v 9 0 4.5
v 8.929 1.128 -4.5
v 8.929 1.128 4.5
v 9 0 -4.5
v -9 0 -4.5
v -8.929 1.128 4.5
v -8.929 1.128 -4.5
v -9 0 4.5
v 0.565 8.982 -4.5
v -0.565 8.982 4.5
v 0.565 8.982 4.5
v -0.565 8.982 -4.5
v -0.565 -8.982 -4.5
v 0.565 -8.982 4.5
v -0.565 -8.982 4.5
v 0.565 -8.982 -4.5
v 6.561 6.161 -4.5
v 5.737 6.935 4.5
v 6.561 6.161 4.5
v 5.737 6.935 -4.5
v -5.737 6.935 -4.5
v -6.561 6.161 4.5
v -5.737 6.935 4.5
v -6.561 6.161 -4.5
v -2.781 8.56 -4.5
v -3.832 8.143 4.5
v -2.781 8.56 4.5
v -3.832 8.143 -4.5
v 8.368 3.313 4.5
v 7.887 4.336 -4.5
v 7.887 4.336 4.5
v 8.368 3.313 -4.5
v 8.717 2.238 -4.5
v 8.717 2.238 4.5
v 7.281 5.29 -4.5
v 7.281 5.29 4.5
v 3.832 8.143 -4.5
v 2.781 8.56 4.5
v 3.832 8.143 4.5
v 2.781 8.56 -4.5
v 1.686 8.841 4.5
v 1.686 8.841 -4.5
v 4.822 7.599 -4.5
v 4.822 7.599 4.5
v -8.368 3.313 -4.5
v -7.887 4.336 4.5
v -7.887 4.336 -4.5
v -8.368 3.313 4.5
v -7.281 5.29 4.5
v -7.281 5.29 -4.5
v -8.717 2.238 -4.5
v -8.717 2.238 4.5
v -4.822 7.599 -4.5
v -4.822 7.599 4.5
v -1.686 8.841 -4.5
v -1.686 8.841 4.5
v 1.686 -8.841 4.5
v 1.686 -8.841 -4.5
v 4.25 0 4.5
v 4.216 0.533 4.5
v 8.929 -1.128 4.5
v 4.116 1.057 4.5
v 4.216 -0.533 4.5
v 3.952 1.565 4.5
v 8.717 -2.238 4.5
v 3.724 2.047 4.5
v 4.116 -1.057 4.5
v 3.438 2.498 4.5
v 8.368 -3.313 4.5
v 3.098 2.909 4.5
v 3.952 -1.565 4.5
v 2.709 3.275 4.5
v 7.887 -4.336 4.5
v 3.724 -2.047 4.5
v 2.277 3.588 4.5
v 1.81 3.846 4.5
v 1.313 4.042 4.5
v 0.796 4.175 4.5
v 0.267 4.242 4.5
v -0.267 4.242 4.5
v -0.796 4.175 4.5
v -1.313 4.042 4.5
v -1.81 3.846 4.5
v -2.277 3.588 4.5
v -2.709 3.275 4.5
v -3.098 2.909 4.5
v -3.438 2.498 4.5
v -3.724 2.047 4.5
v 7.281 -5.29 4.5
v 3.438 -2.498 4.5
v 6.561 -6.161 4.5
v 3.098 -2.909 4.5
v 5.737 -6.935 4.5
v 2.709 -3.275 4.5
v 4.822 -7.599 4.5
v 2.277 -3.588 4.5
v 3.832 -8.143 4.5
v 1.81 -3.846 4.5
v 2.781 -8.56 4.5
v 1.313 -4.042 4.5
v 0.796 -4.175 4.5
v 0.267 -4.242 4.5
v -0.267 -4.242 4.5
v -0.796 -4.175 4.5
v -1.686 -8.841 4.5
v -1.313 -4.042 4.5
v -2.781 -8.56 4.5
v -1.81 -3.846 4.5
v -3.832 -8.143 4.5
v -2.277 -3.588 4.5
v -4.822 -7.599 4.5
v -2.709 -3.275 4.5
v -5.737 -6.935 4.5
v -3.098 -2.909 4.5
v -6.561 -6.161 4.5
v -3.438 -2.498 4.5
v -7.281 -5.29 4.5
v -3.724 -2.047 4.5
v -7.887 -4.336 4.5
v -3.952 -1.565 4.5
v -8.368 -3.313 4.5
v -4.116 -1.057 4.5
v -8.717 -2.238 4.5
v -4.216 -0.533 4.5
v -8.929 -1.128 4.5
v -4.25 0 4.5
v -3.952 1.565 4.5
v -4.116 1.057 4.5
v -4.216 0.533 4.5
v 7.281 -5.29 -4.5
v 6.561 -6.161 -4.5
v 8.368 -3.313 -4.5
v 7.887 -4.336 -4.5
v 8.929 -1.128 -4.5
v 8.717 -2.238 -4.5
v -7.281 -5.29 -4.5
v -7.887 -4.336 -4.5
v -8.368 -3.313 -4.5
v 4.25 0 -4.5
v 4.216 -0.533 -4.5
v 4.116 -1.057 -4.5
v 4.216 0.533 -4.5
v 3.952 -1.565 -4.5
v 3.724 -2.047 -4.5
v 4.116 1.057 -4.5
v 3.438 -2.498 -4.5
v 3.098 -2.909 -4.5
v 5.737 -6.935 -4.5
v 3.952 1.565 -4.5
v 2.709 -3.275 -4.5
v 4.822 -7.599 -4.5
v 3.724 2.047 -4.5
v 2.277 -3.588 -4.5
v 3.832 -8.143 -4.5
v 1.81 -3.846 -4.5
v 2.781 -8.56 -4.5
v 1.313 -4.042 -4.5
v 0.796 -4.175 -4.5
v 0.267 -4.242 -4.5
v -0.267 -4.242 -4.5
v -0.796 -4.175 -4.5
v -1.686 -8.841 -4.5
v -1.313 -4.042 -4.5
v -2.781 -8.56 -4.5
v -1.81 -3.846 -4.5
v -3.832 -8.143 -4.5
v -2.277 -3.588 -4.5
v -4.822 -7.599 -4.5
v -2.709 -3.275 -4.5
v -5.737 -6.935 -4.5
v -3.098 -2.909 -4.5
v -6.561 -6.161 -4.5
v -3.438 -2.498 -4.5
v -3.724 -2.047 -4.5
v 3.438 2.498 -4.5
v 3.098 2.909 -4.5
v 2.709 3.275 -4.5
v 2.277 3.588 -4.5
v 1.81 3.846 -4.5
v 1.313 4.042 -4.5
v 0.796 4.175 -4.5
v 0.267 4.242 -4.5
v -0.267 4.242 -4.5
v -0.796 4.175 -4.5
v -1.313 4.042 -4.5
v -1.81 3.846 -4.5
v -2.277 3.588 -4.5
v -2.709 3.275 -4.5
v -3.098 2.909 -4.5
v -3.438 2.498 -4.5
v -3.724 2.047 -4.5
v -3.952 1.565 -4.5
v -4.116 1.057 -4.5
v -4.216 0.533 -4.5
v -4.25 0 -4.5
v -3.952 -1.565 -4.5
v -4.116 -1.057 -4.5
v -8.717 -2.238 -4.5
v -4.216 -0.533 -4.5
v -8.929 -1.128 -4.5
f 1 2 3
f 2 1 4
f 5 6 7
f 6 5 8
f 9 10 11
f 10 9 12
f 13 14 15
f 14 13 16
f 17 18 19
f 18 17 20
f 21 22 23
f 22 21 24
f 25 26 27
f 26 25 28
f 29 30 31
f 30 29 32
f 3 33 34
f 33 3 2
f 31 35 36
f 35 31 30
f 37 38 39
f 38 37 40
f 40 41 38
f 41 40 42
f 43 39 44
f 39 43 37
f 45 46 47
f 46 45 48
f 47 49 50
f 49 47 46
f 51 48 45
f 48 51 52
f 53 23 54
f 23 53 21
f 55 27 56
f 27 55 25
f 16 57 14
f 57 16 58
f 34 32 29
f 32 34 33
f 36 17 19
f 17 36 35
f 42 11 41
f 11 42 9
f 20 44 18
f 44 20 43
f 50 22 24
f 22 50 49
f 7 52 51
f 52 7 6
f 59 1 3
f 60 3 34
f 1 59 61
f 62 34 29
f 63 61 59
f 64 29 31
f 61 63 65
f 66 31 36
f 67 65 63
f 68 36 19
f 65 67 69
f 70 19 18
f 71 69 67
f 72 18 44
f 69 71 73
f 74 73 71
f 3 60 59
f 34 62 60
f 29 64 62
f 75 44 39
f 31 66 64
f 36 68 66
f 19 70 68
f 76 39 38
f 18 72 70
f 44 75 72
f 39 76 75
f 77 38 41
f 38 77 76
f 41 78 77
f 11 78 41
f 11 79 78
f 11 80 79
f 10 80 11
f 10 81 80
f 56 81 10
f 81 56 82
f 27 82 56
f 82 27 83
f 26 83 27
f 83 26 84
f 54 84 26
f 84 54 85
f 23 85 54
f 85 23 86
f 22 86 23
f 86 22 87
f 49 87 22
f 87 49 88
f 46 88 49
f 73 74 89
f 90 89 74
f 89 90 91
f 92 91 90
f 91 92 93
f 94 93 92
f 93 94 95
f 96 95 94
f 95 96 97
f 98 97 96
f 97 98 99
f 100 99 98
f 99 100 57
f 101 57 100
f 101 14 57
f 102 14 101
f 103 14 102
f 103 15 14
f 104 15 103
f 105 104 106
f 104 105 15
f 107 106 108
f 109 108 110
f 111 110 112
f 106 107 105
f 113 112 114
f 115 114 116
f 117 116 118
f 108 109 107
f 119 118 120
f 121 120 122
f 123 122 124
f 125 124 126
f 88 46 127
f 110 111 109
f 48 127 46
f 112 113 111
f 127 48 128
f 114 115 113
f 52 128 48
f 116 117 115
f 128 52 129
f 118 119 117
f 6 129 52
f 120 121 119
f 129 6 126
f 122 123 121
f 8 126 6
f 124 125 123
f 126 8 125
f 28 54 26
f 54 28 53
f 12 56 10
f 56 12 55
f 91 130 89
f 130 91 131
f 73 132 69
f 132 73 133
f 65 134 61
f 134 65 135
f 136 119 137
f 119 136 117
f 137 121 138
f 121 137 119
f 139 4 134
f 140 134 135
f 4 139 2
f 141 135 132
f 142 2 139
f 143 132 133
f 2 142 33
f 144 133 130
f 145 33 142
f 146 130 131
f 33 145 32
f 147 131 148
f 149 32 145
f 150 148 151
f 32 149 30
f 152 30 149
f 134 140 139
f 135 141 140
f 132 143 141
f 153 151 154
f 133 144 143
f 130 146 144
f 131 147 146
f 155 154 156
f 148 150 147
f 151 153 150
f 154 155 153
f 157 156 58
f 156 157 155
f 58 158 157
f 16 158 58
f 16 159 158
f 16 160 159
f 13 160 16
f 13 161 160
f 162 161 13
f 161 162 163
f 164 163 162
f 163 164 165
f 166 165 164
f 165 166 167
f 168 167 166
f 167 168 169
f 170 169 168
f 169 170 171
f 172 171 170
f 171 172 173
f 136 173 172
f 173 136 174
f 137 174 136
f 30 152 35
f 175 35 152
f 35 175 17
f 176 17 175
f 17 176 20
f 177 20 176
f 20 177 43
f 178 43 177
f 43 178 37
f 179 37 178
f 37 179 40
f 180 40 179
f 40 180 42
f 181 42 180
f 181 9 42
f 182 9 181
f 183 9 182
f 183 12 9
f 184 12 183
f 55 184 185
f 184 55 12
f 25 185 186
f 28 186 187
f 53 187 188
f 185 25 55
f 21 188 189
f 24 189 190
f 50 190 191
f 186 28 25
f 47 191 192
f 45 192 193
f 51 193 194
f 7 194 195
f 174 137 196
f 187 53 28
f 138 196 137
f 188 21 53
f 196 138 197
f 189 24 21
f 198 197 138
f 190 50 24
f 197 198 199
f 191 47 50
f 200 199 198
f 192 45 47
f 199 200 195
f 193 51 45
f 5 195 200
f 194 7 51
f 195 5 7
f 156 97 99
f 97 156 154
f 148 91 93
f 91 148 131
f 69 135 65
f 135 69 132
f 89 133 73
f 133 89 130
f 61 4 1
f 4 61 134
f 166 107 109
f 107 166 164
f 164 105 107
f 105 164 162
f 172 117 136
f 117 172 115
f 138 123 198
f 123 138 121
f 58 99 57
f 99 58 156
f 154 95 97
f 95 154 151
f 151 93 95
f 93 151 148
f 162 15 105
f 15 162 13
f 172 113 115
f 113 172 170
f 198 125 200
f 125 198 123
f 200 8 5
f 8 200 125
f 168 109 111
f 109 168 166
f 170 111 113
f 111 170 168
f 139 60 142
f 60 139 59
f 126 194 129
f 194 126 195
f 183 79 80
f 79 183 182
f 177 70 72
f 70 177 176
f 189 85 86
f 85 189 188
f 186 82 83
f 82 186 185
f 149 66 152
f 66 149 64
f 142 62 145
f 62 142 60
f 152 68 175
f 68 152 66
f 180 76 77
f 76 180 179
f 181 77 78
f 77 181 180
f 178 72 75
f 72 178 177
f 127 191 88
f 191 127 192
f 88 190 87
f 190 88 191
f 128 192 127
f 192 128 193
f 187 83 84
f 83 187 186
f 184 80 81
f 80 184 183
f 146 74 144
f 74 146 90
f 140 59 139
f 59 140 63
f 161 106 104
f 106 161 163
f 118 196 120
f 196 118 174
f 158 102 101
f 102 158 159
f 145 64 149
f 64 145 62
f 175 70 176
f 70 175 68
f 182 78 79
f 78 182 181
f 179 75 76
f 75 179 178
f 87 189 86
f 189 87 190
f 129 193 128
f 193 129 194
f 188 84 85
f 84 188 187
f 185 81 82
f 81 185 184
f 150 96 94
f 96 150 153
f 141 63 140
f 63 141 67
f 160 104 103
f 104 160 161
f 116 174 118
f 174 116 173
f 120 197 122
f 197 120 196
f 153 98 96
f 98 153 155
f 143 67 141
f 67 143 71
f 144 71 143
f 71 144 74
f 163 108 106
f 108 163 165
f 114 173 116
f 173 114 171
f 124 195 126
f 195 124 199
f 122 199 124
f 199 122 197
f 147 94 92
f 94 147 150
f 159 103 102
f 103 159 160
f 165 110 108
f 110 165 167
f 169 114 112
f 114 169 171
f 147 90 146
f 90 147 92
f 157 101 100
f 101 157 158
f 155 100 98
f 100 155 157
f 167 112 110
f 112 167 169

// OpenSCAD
$fn = 50;


difference() {
	union() {
		translate(v = [0, 0, -4.5000000000]) {
			cylinder(h = 9, r = 9.0000000000);
		}
	}
	union() {
		translate(v = [0, 0, -100.0000000000]) {
			cylinder(h = 200, r = 4.2500000000);
		}
	}
}
